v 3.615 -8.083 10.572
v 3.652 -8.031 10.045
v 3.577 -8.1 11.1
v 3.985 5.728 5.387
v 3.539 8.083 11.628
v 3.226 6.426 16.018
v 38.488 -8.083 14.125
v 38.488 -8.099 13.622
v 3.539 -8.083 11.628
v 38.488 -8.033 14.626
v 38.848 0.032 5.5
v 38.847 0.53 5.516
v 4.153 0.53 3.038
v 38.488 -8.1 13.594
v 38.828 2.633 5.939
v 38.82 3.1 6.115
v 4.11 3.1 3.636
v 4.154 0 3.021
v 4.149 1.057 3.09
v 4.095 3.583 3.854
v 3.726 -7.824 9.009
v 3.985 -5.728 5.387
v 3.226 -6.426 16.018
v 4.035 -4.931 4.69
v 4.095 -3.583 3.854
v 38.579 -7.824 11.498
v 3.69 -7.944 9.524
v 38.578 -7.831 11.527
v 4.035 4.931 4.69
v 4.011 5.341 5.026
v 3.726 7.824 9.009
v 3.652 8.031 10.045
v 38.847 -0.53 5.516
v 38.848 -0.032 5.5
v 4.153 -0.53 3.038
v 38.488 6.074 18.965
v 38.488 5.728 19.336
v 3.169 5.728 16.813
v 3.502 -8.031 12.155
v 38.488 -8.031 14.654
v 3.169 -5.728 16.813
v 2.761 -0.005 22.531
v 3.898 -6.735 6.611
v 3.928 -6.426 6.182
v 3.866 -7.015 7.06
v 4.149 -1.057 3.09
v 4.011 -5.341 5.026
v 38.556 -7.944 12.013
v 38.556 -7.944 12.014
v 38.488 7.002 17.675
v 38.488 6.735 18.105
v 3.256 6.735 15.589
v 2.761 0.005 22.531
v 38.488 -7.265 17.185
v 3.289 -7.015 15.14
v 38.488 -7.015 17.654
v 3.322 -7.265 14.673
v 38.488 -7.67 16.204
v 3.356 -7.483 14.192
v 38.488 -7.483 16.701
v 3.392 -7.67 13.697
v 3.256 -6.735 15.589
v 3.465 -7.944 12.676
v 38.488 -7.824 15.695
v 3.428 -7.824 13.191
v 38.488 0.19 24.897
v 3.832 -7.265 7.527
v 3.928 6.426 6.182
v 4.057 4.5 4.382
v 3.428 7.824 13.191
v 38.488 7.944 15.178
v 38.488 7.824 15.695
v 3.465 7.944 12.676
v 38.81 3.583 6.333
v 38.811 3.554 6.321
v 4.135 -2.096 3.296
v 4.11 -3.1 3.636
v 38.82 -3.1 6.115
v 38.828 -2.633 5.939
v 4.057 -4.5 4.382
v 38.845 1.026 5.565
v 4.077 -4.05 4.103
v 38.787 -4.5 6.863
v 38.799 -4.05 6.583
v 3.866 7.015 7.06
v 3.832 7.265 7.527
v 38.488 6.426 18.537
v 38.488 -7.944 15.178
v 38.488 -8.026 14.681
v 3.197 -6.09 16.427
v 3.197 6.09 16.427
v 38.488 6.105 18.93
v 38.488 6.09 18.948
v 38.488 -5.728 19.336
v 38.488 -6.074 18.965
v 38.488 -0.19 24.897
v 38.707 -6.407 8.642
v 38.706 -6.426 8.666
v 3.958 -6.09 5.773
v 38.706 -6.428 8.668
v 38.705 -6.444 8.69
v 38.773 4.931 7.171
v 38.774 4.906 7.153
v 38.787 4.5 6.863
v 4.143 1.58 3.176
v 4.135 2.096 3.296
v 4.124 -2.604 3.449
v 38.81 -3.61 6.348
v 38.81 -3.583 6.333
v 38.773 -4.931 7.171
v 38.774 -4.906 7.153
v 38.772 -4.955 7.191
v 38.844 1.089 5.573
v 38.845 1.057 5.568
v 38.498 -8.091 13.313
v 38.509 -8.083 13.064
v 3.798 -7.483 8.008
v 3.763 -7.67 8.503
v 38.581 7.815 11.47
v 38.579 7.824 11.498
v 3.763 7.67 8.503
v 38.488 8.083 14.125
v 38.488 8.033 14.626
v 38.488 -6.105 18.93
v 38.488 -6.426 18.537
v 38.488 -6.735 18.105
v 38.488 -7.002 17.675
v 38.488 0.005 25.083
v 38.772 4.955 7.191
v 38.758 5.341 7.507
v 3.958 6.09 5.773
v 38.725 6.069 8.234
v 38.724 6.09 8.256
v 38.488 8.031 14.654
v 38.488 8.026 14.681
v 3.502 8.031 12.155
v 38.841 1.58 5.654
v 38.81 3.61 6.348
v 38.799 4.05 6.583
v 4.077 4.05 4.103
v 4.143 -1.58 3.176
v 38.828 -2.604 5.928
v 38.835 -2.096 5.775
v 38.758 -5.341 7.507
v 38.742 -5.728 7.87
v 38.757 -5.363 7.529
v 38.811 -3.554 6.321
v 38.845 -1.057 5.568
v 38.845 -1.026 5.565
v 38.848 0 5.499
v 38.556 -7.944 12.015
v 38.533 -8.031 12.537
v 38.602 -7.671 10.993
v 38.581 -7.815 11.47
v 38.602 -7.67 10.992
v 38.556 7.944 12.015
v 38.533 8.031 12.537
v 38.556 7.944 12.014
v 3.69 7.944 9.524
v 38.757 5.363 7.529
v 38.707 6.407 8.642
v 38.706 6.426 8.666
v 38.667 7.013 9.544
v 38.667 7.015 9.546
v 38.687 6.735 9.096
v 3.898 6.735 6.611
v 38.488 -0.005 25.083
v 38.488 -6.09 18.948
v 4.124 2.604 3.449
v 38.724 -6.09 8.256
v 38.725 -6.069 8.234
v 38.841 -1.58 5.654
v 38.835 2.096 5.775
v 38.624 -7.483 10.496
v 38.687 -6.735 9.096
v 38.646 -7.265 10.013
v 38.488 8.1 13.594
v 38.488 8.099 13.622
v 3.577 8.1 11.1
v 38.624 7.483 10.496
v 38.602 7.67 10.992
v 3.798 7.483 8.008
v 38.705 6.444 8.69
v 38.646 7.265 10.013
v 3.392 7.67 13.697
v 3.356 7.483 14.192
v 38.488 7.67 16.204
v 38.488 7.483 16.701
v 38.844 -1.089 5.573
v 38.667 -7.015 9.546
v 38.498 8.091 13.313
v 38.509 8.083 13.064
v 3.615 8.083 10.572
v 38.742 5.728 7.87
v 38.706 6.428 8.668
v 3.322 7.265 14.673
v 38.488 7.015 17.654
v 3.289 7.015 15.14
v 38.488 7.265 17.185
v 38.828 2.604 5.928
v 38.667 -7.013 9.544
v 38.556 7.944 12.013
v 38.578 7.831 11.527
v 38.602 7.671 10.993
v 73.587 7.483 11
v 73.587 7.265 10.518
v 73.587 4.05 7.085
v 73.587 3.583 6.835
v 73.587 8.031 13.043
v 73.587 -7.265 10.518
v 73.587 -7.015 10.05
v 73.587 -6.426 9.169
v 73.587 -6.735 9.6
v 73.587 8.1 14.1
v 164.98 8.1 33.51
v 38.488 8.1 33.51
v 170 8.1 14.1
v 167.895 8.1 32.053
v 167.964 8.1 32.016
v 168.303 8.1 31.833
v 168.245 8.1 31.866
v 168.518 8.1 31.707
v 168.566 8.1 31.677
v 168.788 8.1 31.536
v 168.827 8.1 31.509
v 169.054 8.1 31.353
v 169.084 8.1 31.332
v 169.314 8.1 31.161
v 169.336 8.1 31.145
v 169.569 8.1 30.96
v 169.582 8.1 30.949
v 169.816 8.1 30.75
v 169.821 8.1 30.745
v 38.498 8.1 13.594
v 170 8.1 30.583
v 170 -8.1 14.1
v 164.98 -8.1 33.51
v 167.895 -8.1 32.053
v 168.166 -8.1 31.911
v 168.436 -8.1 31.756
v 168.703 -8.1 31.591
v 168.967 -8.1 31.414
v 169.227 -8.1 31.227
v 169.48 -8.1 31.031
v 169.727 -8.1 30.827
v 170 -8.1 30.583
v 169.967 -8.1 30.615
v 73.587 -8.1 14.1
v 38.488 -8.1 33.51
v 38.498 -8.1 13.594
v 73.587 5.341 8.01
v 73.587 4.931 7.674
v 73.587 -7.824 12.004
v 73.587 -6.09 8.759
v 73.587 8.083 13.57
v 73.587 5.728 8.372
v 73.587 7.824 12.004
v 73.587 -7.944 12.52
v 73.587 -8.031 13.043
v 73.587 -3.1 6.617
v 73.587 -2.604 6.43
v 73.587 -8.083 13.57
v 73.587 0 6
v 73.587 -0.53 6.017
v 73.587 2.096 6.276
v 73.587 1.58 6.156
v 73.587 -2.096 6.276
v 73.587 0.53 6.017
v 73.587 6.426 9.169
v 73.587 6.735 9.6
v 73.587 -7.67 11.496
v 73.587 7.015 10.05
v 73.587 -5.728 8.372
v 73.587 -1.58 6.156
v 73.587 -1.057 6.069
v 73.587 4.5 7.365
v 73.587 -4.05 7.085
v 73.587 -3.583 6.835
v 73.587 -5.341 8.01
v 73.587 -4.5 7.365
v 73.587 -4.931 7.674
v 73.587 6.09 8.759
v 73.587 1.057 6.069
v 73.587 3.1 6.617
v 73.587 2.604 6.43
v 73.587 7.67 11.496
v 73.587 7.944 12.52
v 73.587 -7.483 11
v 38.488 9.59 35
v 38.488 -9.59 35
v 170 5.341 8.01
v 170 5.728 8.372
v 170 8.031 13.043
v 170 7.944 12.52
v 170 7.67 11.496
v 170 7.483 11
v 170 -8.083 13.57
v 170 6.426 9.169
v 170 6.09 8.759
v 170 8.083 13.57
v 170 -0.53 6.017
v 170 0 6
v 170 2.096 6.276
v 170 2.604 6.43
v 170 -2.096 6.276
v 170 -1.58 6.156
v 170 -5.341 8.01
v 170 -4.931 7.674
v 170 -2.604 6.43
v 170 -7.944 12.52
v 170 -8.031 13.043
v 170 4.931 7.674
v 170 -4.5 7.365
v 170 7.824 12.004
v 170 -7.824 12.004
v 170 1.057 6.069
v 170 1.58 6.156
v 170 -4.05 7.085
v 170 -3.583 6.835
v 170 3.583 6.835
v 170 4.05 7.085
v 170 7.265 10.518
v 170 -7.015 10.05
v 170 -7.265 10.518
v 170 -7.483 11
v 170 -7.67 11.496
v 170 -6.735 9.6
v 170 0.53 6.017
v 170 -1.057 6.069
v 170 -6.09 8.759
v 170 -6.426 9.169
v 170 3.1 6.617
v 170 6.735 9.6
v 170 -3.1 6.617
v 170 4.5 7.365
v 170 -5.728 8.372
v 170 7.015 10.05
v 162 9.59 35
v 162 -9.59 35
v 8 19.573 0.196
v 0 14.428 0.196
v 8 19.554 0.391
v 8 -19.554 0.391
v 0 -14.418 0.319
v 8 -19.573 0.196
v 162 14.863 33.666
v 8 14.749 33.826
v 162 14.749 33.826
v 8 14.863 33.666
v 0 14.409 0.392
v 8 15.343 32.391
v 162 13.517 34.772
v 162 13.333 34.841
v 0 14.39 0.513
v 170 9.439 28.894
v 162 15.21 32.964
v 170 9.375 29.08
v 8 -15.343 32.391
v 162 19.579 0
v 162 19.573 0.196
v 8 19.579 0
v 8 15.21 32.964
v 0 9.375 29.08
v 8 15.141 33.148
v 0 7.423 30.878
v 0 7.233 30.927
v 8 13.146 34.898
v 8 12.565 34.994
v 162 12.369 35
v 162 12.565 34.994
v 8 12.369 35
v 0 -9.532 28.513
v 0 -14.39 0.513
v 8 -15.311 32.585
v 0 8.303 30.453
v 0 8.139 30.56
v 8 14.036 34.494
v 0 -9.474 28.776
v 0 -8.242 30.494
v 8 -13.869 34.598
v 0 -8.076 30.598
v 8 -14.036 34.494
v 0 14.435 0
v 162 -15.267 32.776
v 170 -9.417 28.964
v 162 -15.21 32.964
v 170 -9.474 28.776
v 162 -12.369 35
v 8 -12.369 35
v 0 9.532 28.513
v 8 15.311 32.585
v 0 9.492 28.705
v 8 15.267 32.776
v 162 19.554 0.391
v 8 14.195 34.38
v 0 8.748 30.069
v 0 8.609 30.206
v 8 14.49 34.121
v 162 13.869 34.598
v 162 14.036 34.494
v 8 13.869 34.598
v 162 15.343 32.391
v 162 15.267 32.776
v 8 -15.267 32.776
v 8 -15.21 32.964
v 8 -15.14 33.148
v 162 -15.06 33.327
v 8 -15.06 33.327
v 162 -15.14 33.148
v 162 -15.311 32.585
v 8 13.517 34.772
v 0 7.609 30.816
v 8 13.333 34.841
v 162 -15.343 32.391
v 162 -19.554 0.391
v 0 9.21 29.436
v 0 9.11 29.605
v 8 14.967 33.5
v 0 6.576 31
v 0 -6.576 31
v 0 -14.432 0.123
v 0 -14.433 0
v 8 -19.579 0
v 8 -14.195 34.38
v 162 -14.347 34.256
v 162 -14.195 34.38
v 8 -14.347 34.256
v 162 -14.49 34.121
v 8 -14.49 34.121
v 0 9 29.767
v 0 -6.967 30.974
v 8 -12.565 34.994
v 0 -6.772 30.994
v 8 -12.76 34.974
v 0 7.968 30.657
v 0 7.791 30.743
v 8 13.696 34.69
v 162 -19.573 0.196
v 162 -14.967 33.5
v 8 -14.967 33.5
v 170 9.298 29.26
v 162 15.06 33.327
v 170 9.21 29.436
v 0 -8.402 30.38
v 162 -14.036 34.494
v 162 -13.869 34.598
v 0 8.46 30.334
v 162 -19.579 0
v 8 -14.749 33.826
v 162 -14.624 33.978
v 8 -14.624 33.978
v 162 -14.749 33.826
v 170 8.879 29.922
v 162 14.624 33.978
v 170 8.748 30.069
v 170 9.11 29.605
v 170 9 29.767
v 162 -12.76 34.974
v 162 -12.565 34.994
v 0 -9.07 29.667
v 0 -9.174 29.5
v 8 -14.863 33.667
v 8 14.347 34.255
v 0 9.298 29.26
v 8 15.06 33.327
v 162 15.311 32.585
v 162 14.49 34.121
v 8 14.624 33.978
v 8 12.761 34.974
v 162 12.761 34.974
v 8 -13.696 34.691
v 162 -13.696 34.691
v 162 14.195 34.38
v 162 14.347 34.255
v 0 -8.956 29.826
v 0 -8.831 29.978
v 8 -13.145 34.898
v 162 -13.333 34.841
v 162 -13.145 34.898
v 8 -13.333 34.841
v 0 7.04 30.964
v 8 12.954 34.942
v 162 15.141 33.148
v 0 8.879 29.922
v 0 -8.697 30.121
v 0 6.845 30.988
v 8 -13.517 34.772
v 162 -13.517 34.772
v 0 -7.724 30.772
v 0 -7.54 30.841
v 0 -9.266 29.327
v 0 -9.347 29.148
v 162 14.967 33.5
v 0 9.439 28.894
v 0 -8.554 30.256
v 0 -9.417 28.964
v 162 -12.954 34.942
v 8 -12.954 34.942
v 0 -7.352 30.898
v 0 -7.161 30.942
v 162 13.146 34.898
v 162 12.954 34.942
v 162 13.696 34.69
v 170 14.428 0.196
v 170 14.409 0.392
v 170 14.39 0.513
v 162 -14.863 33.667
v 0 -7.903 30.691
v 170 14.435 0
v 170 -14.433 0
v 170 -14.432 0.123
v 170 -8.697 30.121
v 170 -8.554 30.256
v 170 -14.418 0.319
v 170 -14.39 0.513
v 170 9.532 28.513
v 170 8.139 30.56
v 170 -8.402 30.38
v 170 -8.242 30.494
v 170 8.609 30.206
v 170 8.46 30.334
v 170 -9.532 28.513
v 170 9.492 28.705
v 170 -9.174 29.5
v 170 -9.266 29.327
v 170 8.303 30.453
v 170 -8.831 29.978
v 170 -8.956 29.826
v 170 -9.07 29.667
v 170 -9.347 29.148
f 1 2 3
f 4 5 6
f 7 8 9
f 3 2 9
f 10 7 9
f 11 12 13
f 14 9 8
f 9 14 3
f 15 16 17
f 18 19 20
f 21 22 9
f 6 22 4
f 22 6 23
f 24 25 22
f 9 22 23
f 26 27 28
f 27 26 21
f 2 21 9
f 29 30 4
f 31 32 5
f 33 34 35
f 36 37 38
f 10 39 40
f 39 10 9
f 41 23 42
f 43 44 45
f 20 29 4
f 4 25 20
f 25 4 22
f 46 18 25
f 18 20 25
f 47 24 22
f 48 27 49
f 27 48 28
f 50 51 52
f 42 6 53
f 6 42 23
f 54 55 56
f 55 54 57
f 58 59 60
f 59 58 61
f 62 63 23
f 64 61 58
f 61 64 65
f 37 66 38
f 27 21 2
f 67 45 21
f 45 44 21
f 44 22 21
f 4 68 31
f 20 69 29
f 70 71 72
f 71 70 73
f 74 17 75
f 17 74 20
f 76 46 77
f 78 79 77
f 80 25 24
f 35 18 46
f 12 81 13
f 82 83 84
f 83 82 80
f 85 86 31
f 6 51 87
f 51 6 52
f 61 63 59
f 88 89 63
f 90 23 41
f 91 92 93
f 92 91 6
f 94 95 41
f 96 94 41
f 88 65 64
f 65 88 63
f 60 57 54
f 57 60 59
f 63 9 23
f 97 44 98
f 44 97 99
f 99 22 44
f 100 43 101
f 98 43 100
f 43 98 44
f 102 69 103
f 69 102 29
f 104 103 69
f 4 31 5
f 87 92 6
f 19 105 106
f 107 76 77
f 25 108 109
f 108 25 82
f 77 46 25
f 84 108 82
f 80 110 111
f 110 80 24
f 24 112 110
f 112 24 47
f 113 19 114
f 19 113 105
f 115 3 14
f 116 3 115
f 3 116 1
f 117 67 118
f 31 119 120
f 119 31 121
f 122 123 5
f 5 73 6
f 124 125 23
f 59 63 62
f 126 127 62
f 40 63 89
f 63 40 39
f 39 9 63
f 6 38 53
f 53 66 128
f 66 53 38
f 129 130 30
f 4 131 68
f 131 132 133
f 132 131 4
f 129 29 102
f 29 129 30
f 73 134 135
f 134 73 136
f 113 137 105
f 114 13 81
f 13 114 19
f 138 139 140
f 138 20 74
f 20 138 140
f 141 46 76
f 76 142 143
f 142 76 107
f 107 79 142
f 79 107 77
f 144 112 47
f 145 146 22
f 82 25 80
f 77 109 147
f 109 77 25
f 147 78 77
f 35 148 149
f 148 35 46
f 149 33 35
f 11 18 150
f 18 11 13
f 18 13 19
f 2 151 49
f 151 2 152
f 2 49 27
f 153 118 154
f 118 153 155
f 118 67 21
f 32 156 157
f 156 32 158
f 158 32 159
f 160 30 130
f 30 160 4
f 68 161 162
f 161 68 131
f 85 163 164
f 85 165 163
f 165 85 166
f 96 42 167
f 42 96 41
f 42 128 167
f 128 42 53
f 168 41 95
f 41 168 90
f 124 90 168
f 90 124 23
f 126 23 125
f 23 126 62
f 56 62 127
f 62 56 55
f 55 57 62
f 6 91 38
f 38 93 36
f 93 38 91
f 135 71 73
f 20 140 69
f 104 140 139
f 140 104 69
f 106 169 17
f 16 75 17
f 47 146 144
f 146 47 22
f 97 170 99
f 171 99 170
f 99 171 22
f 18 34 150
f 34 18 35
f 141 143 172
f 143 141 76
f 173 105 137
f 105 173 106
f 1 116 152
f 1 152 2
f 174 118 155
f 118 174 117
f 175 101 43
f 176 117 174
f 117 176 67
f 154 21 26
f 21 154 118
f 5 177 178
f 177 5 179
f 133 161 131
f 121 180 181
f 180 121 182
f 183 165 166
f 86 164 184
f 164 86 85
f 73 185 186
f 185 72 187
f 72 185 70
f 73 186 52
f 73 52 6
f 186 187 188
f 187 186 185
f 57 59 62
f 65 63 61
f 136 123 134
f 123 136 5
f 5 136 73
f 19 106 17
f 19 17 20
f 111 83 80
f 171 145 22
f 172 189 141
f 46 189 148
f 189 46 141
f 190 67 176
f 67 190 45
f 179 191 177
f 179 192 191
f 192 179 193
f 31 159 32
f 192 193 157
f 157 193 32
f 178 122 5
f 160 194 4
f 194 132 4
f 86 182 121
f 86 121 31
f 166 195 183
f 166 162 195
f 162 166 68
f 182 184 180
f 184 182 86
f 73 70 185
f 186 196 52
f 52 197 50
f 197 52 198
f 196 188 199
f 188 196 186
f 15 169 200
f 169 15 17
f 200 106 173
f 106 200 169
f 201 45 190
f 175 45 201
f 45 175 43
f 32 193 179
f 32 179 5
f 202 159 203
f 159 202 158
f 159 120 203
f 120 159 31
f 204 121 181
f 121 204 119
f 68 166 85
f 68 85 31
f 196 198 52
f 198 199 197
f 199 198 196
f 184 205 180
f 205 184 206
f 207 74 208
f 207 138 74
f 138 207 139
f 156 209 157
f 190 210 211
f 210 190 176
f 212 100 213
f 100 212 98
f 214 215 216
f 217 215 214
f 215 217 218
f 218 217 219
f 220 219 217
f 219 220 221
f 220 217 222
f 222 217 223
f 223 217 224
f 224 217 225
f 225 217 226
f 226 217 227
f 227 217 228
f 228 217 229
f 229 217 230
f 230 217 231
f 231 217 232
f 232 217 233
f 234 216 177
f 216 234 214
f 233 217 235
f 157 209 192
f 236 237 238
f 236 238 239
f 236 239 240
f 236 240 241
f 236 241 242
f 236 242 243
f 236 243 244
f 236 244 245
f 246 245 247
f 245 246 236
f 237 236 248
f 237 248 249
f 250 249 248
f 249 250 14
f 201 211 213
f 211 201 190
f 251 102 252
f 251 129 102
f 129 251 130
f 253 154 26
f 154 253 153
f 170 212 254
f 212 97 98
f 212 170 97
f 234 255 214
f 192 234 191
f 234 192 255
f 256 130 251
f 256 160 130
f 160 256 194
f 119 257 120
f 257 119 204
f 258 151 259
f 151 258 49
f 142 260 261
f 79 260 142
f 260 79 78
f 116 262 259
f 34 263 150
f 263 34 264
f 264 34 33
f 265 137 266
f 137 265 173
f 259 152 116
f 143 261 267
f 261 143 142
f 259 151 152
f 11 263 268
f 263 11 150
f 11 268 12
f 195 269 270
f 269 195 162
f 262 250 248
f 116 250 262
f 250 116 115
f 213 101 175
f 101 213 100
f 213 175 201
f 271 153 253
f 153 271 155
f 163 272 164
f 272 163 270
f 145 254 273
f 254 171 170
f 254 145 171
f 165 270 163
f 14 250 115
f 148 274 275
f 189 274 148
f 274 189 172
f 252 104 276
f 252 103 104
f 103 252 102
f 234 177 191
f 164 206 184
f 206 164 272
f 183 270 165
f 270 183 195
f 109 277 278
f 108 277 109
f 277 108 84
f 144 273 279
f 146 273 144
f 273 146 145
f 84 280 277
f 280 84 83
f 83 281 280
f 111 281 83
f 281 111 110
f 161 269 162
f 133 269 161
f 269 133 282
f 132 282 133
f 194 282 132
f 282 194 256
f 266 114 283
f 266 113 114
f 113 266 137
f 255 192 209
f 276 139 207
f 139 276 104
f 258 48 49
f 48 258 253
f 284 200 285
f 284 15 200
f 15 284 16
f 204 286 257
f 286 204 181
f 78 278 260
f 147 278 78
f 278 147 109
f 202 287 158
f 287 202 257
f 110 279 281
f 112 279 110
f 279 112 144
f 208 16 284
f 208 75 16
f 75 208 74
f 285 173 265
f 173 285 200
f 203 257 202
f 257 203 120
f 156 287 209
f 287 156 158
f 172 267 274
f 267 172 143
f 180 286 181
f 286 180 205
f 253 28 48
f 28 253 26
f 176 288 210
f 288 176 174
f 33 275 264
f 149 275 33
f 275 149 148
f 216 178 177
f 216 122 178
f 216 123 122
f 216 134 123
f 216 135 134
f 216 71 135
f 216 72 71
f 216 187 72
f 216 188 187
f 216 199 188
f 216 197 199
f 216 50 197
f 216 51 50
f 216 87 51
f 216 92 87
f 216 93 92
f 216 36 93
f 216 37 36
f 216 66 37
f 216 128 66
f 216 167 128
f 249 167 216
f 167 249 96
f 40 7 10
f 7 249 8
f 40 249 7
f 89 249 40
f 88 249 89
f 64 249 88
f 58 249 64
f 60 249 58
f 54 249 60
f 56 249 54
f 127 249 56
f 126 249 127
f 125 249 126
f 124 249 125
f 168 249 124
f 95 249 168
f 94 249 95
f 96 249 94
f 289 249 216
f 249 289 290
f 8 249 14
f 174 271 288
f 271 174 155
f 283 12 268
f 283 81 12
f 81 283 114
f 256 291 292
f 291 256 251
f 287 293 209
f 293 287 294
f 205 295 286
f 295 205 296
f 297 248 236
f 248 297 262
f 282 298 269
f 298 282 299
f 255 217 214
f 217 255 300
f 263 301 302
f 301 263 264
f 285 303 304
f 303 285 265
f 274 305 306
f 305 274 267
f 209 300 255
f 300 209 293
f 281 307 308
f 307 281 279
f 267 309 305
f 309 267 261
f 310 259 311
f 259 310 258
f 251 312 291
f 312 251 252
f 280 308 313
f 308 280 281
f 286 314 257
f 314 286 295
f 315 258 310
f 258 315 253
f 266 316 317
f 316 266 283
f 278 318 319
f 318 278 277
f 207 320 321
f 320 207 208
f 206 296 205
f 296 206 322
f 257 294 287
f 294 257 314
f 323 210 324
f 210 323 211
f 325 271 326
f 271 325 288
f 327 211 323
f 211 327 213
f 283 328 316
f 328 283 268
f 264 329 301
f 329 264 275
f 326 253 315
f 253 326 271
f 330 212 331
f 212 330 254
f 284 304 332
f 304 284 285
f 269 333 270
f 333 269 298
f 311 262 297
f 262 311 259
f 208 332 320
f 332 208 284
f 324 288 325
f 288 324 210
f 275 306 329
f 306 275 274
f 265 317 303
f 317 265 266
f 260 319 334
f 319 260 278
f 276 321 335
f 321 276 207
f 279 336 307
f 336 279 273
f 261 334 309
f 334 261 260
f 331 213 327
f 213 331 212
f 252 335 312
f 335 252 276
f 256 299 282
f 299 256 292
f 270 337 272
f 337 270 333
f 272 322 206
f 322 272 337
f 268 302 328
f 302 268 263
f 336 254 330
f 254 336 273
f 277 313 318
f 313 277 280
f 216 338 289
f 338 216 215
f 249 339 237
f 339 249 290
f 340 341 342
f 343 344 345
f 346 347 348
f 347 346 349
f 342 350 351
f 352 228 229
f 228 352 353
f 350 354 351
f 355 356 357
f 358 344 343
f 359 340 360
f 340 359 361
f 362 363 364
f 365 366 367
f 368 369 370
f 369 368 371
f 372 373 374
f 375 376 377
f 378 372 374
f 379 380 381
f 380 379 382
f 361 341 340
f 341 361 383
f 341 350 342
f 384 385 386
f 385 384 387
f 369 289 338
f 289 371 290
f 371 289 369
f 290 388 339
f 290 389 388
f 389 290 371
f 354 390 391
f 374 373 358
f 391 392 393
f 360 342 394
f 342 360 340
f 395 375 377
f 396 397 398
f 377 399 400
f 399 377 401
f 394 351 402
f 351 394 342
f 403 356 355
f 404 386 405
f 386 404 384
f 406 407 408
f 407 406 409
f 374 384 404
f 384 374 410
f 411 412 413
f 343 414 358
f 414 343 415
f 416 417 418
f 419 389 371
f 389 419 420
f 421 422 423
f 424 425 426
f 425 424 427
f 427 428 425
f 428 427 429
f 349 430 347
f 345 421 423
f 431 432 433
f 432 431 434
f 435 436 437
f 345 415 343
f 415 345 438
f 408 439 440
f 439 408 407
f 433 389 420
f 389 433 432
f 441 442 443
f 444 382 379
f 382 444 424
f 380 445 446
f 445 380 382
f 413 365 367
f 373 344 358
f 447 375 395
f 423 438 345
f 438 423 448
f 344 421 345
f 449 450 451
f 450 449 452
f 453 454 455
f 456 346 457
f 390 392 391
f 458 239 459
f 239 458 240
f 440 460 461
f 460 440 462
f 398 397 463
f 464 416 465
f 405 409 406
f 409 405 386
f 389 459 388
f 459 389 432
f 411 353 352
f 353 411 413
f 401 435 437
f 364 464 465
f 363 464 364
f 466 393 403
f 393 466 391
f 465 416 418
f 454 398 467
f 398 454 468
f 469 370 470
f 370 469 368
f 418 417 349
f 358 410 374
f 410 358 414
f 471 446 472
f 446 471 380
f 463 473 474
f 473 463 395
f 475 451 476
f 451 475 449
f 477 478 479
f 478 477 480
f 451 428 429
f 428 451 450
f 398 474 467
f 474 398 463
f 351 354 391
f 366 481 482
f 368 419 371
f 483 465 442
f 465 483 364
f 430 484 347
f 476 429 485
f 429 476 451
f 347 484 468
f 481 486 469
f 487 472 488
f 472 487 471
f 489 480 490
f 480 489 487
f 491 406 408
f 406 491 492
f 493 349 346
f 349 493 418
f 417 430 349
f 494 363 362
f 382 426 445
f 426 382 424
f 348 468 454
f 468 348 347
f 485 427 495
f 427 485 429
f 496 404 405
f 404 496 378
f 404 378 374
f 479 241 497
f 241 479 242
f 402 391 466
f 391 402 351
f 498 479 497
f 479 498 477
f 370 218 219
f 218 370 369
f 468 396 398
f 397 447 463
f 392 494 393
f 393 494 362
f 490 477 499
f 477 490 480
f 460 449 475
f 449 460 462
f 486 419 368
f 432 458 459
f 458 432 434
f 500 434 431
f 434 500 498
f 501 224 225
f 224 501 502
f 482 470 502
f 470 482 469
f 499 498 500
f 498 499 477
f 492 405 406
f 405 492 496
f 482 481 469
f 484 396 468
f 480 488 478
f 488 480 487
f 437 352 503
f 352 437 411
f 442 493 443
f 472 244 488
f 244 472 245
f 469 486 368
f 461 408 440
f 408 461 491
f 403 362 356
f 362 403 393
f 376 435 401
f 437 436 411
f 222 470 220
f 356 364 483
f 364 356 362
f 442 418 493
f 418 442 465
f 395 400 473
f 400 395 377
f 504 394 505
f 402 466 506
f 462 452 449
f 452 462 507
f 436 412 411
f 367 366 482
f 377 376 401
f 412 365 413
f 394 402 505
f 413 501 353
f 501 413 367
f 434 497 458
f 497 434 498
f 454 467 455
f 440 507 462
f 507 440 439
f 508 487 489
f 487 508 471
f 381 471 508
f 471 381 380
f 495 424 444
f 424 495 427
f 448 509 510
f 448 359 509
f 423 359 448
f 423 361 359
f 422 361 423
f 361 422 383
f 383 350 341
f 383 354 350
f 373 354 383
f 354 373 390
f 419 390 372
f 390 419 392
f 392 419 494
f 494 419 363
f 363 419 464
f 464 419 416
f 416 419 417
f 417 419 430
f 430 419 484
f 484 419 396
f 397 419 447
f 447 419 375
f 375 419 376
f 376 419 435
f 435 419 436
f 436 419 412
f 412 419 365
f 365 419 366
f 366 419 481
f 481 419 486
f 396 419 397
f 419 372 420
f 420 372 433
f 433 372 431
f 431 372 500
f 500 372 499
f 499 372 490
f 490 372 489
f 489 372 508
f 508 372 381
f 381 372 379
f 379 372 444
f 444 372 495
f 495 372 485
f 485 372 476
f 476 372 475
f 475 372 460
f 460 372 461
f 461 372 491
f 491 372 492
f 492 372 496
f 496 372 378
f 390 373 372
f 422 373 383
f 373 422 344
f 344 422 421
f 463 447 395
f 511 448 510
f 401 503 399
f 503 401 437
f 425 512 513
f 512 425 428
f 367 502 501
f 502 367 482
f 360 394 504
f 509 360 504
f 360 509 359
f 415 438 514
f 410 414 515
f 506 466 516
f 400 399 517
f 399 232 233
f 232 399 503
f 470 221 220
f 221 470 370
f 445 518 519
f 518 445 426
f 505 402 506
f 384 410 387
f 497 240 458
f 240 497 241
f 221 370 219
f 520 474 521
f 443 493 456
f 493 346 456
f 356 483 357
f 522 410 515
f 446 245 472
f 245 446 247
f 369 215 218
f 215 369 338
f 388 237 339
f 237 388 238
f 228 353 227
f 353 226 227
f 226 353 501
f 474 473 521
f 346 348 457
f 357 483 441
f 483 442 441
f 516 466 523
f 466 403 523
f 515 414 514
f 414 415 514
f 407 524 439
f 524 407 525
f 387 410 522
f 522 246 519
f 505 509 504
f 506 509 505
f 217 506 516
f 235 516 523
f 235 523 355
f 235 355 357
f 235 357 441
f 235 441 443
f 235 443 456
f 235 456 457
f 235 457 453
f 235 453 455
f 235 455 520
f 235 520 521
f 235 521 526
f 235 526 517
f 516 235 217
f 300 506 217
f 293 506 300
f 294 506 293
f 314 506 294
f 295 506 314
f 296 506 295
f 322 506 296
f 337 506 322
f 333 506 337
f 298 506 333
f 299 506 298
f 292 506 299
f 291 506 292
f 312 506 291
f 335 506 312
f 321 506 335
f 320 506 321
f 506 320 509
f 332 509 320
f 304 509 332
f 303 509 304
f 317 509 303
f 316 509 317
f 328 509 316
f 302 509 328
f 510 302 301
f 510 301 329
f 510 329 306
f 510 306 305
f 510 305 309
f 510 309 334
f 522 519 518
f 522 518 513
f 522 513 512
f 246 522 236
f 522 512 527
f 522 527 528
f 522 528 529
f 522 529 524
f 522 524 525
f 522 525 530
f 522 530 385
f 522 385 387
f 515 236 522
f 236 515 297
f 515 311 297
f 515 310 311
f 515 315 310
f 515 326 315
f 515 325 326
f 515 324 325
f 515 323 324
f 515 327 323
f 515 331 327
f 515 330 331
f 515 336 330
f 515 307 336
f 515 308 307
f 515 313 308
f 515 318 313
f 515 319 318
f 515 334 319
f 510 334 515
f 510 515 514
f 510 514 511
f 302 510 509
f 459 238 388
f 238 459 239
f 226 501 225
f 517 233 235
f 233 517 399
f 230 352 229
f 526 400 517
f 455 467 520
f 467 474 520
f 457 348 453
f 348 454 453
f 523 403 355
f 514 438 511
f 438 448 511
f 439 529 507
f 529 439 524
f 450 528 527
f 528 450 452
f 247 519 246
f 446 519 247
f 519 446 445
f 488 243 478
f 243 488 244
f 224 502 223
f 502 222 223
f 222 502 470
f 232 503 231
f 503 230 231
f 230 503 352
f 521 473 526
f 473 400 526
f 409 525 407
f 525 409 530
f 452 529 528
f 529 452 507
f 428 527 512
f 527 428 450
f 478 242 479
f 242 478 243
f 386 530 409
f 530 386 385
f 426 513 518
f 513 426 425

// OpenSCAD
// Drying rack foot guard for robot vacuums
// Replaces the plastic end cap on a round-tube foot.
//
// The tube's last section is straight but angled: it rises from the tip
// (which touches the floor) to the level middle part. The tube end slides into
// a closed socket tilted to that same angle. The rest of the block is a
// top-open channel that follows the rise, with extra room below the tube so
// the channel never props the tube up out of the socket.
//
// x = 0 is the foot end of the block.
// Open in OpenSCAD and use Window > Customizer to adjust the parameters.
// Print flat side down, no supports needed (the socket is teardrop-shaped).

/* [Tube] */
// Measured outer diameter of the tube (mm)
tube_d = 16.0;
// Extra diameter for fit; 0.3-0.5 for a snug slide fit, increase if too tight
clearance = 0.2;
// How far the tube goes into the closed socket at the foot end (mm); keep it shorter than end_seg_len
socket_len = 35;
// End wall thickness at the closed foot end (mm)
end_wall = 3;

/* [Tube shape (measured without the old caps)] */
// Length of the straight angled end section, from the tip to where it meets the level middle (mm)
end_seg_len = 70;
// How much higher the level middle is than the tip, measured at the tube's bottom (mm)
end_rise = 5;
// Floor thickness under the tube tip; raises the whole rack by this much
gap_at_tip = 3;
// Extra room under the tube after the socket, so small measurement errors don't lift the tube out of the socket
under_clearance = 2;

/* [Block shape] */
// Overall length (mm); 60 is enough for a test print of the socket fit
length = 170;
// Total height; above ~30 mm most robots' bumpers will hit it instead of climbing
height = 35;
// Width at the floor
base_w = 40;
// Width at the top
top_w = 30;

/* [Details] */
// Rounding radius of the profile edges
edge_r = 3;
// Chamfer length of the two block ends
end_chamfer = 8;
// Chamfer along the top edges of the channel, eases dropping the tube in
entry_chamfer = 1.5;

/* [Hidden] */
$fn = 96;
eps = 0.01;

bore_d = tube_d + clearance;
// Angle of the end section
tilt = atan(end_rise / end_seg_len);
// Tube tip (where the axis meets the end face); shifted so the tilted end face clears the end wall
x_tip = end_wall + bore_d / 2 * sin(tilt);
z_tip = gap_at_tip + bore_d / 2;
// Where the socket ends, along the tilted axis
socket_end = x_tip + socket_len * cos(tilt);
z_socket_end = z_tip + socket_len * sin(tilt);
// Where the tube reaches the level middle part
rise_end = x_tip + end_seg_len;
z_far = z_tip + end_rise;

H  = height;
BW = base_w;
TW = top_w;

assert(socket_len < end_seg_len, "socket_len must be shorter than end_seg_len");
assert(length >= socket_end + end_wall, "length must be longer than the socket");
assert(H >= z_socket_end + bore_d / 2 * sqrt(2) + 2, "Block is too low to roof over the socket");
assert(H >= z_far + bore_d / 2, "Block is lower than the top of the raised tube");
assert(TW >= bore_d + 4, "Top is too narrow for the tube channel");

module profile2d(bw, tw, h) {
    // Rounded trapezoid; bottom edge kept sharp so it sits flat
    r = min(edge_r, h / 3);
    intersection() {
        offset(r) offset(-r)
            polygon([[-bw/2, -r], [bw/2, -r], [tw/2, h], [-tw/2, h]]);
        translate([-bw, 0]) square([2 * bw, h]);
    }
}

// Teardrop: a circle with a 45-degree point on top (+y in 2D), so a sideways
// hole prints without supports. The tube still rests on the round part.
module teardrop2d(d) {
    r = d / 2;
    hull() {
        circle(d = d);
        translate([0, r * sqrt(2)]) square(0.01, center = true);
    }
}

module extrude_x(len) {
    rotate([90, 0, 90]) linear_extrude(len) children();
}

module body() {
    c = min(end_chamfer, length / 4);
    shrink = c * 2;
    // Hull of the full profile (shortened) and a smaller profile (full length)
    // gives sloped ends so the robot slides off instead of catching.
    hull() {
        translate([c, 0, 0]) extrude_x(length - 2 * c)
            profile2d(BW, TW, H);
        extrude_x(length)
            profile2d(max(BW - shrink, TW), max(TW - shrink, bore_d + 2), H - c / 2);
    }
}

// Thin cross-section of the channel at x, with the tube axis at z:
// round bottom (lowered by drop) and open straight up to the top.
module channel_slice(x, z, drop) {
    translate([x, 0, 0]) rotate([0, 90, 0]) linear_extrude(eps)
        hull() {
            translate([-z, 0]) circle(d = bore_d);
            translate([-(z - drop), 0]) circle(d = bore_d);
            translate([-(H + 1), -bore_d / 2]) square([1, bore_d]);
        }
}

module cutouts() {
    // Closed socket at the foot end, tilted to the tube's end angle.
    // Runs 2 mm past socket_end so its slanted end face overlaps the channel
    // instead of leaving a lip of roof material inside the bore.
    // Teardrop-shaped so the socket roof prints without supports.
    translate([x_tip, 0, z_tip])
        rotate([0, 90 - tilt, 0]) linear_extrude(socket_len + 2) rotate(90) teardrop2d(bore_d);

    // Open channel: rest of the angled section, then the level part
    hull() {
        channel_slice(socket_end, z_socket_end, 0);
        channel_slice(rise_end, z_far, under_clearance);
    }
    hull() {
        channel_slice(rise_end, z_far, under_clearance);
        channel_slice(max(length, rise_end) + 1, z_far, under_clearance);
    }

    // Chamfer along the top edges of the channel
    translate([socket_end, 0, H + eps])
        rotate([90, 0, 90]) linear_extrude(length)
            polygon([[-bore_d/2 - entry_chamfer, 0], [bore_d/2 + entry_chamfer, 0],
                     [bore_d/2, -entry_chamfer], [-bore_d/2, -entry_chamfer]]);
}

difference() {
    body();
    cutouts();
}
